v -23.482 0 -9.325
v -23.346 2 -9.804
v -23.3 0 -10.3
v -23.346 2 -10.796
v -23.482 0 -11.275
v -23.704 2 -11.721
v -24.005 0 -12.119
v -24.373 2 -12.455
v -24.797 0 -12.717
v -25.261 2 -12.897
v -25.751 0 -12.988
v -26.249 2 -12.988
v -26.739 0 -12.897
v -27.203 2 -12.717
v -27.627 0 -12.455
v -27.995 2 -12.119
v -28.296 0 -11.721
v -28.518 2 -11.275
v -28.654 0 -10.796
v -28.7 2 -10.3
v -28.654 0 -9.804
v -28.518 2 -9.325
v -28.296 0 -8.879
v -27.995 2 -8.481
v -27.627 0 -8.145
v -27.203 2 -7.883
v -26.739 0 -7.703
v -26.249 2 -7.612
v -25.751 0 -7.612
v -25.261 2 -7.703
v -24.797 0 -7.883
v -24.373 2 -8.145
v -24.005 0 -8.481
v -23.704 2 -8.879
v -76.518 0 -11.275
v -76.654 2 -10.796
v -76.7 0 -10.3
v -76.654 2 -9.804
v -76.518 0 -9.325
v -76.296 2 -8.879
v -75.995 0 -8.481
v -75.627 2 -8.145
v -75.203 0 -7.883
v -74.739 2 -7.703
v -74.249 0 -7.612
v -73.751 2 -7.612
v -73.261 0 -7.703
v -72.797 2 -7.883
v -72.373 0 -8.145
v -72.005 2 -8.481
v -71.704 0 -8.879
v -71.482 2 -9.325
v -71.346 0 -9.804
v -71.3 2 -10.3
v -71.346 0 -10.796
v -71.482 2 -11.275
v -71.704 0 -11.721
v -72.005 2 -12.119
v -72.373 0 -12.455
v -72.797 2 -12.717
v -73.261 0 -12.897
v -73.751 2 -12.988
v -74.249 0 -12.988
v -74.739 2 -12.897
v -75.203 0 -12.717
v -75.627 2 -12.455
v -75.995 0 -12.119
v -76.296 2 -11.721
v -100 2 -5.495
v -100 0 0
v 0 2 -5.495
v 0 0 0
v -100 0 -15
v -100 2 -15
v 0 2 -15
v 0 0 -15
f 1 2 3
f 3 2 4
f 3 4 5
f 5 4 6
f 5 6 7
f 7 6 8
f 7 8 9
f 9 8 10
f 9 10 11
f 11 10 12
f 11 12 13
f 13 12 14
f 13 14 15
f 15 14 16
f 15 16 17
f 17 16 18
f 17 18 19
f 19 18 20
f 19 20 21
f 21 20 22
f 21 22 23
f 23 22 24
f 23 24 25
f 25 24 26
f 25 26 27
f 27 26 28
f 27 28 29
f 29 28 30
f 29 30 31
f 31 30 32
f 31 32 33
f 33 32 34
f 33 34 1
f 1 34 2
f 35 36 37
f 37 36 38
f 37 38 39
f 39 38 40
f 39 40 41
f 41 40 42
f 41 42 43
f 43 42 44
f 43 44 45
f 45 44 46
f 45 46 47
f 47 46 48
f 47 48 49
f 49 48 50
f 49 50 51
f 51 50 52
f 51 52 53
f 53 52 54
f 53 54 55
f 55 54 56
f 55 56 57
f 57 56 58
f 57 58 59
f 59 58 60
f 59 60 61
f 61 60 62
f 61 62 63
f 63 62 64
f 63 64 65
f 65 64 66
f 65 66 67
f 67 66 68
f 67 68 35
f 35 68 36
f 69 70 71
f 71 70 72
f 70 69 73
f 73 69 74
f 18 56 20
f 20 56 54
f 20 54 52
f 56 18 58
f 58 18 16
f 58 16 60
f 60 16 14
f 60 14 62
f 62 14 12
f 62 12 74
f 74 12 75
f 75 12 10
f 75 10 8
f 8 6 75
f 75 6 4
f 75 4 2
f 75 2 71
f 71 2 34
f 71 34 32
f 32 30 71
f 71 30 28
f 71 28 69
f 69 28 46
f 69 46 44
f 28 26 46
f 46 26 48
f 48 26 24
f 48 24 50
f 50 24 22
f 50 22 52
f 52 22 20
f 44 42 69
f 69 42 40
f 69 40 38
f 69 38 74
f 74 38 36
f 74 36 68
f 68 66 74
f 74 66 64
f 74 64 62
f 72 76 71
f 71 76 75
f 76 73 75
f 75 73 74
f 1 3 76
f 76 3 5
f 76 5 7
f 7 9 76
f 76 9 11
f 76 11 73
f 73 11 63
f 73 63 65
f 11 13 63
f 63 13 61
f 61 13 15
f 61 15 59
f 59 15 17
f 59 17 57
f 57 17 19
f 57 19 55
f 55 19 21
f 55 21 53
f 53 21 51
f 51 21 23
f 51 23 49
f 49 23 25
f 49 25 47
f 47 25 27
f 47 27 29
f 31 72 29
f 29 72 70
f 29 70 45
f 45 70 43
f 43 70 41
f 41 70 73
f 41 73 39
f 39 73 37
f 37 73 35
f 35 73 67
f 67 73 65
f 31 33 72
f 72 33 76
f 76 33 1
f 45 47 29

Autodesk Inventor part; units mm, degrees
ref_plane "YZ Plane" through (0, 0, 0) normal (1, 0, 0) x (0, 1, 0)
ref_plane "XZ Plane" through (0, 0, 0) normal (0, 1, 0) x (-1, 0, 0)
sketch "Sketch1" plane through (0, 0, 0) normal (0, 1, 0) x (-1, 0, 0)
  line L0 (0, 0) -> (100, 0)
  line L1 (100, 0) -> (100, -15)
  line L2 (100, -15) -> (0, -15)
  line L3 (0, -15) -> (0, 0)
  dimension "d0" = 100
  dimension "d1" = 15
extrude "Extrusion1" add sketch "Sketch1" along normal blind 2
sketch "Sketch2" plane through (0, 0, 0) normal (1, 0, 0) x (0, 0, -1)
  line L0 (0, 0) -> (0, 2) projected
  line L1 (0, 0) -> (5.495, 2)
  line L2 (5.495, 2) -> (5.495, 0)
  line L3 (5.495, 0) -> (0, 0)
  line L4 (0, 2) -> (15, 2) projected
  dimension "d4" = 20
extrude "Extrusion2" cut sketch "Sketch2" against normal through all contours L0 L4 L1
sketch "Sketch3" plane through (0, 2, 0) normal (0, 1, 0) x (1, 0, 0)
  line L0 (-100, 15) -> (-100, 5.495) projected
  point P0 (0, 0)
  point P1 (-74, 10.3)
  point P2 (-100, 10.2475)
  dimension "d14" = 26
  dimension "d15" = 4.7
hole "Hole1" at (-74, 2, -10.3) direction (0, -1, 0) diameter 5.4 depth 5.83
ref_plane "Work Plane1" through (-50, 0, -15) normal (1, 0, 0) x (0, 0, -1)
mirror "Mirror1" about plane through (-50, 0, -15) normal (1, 0, 0) of "Hole1"
properties part number "Blade"
